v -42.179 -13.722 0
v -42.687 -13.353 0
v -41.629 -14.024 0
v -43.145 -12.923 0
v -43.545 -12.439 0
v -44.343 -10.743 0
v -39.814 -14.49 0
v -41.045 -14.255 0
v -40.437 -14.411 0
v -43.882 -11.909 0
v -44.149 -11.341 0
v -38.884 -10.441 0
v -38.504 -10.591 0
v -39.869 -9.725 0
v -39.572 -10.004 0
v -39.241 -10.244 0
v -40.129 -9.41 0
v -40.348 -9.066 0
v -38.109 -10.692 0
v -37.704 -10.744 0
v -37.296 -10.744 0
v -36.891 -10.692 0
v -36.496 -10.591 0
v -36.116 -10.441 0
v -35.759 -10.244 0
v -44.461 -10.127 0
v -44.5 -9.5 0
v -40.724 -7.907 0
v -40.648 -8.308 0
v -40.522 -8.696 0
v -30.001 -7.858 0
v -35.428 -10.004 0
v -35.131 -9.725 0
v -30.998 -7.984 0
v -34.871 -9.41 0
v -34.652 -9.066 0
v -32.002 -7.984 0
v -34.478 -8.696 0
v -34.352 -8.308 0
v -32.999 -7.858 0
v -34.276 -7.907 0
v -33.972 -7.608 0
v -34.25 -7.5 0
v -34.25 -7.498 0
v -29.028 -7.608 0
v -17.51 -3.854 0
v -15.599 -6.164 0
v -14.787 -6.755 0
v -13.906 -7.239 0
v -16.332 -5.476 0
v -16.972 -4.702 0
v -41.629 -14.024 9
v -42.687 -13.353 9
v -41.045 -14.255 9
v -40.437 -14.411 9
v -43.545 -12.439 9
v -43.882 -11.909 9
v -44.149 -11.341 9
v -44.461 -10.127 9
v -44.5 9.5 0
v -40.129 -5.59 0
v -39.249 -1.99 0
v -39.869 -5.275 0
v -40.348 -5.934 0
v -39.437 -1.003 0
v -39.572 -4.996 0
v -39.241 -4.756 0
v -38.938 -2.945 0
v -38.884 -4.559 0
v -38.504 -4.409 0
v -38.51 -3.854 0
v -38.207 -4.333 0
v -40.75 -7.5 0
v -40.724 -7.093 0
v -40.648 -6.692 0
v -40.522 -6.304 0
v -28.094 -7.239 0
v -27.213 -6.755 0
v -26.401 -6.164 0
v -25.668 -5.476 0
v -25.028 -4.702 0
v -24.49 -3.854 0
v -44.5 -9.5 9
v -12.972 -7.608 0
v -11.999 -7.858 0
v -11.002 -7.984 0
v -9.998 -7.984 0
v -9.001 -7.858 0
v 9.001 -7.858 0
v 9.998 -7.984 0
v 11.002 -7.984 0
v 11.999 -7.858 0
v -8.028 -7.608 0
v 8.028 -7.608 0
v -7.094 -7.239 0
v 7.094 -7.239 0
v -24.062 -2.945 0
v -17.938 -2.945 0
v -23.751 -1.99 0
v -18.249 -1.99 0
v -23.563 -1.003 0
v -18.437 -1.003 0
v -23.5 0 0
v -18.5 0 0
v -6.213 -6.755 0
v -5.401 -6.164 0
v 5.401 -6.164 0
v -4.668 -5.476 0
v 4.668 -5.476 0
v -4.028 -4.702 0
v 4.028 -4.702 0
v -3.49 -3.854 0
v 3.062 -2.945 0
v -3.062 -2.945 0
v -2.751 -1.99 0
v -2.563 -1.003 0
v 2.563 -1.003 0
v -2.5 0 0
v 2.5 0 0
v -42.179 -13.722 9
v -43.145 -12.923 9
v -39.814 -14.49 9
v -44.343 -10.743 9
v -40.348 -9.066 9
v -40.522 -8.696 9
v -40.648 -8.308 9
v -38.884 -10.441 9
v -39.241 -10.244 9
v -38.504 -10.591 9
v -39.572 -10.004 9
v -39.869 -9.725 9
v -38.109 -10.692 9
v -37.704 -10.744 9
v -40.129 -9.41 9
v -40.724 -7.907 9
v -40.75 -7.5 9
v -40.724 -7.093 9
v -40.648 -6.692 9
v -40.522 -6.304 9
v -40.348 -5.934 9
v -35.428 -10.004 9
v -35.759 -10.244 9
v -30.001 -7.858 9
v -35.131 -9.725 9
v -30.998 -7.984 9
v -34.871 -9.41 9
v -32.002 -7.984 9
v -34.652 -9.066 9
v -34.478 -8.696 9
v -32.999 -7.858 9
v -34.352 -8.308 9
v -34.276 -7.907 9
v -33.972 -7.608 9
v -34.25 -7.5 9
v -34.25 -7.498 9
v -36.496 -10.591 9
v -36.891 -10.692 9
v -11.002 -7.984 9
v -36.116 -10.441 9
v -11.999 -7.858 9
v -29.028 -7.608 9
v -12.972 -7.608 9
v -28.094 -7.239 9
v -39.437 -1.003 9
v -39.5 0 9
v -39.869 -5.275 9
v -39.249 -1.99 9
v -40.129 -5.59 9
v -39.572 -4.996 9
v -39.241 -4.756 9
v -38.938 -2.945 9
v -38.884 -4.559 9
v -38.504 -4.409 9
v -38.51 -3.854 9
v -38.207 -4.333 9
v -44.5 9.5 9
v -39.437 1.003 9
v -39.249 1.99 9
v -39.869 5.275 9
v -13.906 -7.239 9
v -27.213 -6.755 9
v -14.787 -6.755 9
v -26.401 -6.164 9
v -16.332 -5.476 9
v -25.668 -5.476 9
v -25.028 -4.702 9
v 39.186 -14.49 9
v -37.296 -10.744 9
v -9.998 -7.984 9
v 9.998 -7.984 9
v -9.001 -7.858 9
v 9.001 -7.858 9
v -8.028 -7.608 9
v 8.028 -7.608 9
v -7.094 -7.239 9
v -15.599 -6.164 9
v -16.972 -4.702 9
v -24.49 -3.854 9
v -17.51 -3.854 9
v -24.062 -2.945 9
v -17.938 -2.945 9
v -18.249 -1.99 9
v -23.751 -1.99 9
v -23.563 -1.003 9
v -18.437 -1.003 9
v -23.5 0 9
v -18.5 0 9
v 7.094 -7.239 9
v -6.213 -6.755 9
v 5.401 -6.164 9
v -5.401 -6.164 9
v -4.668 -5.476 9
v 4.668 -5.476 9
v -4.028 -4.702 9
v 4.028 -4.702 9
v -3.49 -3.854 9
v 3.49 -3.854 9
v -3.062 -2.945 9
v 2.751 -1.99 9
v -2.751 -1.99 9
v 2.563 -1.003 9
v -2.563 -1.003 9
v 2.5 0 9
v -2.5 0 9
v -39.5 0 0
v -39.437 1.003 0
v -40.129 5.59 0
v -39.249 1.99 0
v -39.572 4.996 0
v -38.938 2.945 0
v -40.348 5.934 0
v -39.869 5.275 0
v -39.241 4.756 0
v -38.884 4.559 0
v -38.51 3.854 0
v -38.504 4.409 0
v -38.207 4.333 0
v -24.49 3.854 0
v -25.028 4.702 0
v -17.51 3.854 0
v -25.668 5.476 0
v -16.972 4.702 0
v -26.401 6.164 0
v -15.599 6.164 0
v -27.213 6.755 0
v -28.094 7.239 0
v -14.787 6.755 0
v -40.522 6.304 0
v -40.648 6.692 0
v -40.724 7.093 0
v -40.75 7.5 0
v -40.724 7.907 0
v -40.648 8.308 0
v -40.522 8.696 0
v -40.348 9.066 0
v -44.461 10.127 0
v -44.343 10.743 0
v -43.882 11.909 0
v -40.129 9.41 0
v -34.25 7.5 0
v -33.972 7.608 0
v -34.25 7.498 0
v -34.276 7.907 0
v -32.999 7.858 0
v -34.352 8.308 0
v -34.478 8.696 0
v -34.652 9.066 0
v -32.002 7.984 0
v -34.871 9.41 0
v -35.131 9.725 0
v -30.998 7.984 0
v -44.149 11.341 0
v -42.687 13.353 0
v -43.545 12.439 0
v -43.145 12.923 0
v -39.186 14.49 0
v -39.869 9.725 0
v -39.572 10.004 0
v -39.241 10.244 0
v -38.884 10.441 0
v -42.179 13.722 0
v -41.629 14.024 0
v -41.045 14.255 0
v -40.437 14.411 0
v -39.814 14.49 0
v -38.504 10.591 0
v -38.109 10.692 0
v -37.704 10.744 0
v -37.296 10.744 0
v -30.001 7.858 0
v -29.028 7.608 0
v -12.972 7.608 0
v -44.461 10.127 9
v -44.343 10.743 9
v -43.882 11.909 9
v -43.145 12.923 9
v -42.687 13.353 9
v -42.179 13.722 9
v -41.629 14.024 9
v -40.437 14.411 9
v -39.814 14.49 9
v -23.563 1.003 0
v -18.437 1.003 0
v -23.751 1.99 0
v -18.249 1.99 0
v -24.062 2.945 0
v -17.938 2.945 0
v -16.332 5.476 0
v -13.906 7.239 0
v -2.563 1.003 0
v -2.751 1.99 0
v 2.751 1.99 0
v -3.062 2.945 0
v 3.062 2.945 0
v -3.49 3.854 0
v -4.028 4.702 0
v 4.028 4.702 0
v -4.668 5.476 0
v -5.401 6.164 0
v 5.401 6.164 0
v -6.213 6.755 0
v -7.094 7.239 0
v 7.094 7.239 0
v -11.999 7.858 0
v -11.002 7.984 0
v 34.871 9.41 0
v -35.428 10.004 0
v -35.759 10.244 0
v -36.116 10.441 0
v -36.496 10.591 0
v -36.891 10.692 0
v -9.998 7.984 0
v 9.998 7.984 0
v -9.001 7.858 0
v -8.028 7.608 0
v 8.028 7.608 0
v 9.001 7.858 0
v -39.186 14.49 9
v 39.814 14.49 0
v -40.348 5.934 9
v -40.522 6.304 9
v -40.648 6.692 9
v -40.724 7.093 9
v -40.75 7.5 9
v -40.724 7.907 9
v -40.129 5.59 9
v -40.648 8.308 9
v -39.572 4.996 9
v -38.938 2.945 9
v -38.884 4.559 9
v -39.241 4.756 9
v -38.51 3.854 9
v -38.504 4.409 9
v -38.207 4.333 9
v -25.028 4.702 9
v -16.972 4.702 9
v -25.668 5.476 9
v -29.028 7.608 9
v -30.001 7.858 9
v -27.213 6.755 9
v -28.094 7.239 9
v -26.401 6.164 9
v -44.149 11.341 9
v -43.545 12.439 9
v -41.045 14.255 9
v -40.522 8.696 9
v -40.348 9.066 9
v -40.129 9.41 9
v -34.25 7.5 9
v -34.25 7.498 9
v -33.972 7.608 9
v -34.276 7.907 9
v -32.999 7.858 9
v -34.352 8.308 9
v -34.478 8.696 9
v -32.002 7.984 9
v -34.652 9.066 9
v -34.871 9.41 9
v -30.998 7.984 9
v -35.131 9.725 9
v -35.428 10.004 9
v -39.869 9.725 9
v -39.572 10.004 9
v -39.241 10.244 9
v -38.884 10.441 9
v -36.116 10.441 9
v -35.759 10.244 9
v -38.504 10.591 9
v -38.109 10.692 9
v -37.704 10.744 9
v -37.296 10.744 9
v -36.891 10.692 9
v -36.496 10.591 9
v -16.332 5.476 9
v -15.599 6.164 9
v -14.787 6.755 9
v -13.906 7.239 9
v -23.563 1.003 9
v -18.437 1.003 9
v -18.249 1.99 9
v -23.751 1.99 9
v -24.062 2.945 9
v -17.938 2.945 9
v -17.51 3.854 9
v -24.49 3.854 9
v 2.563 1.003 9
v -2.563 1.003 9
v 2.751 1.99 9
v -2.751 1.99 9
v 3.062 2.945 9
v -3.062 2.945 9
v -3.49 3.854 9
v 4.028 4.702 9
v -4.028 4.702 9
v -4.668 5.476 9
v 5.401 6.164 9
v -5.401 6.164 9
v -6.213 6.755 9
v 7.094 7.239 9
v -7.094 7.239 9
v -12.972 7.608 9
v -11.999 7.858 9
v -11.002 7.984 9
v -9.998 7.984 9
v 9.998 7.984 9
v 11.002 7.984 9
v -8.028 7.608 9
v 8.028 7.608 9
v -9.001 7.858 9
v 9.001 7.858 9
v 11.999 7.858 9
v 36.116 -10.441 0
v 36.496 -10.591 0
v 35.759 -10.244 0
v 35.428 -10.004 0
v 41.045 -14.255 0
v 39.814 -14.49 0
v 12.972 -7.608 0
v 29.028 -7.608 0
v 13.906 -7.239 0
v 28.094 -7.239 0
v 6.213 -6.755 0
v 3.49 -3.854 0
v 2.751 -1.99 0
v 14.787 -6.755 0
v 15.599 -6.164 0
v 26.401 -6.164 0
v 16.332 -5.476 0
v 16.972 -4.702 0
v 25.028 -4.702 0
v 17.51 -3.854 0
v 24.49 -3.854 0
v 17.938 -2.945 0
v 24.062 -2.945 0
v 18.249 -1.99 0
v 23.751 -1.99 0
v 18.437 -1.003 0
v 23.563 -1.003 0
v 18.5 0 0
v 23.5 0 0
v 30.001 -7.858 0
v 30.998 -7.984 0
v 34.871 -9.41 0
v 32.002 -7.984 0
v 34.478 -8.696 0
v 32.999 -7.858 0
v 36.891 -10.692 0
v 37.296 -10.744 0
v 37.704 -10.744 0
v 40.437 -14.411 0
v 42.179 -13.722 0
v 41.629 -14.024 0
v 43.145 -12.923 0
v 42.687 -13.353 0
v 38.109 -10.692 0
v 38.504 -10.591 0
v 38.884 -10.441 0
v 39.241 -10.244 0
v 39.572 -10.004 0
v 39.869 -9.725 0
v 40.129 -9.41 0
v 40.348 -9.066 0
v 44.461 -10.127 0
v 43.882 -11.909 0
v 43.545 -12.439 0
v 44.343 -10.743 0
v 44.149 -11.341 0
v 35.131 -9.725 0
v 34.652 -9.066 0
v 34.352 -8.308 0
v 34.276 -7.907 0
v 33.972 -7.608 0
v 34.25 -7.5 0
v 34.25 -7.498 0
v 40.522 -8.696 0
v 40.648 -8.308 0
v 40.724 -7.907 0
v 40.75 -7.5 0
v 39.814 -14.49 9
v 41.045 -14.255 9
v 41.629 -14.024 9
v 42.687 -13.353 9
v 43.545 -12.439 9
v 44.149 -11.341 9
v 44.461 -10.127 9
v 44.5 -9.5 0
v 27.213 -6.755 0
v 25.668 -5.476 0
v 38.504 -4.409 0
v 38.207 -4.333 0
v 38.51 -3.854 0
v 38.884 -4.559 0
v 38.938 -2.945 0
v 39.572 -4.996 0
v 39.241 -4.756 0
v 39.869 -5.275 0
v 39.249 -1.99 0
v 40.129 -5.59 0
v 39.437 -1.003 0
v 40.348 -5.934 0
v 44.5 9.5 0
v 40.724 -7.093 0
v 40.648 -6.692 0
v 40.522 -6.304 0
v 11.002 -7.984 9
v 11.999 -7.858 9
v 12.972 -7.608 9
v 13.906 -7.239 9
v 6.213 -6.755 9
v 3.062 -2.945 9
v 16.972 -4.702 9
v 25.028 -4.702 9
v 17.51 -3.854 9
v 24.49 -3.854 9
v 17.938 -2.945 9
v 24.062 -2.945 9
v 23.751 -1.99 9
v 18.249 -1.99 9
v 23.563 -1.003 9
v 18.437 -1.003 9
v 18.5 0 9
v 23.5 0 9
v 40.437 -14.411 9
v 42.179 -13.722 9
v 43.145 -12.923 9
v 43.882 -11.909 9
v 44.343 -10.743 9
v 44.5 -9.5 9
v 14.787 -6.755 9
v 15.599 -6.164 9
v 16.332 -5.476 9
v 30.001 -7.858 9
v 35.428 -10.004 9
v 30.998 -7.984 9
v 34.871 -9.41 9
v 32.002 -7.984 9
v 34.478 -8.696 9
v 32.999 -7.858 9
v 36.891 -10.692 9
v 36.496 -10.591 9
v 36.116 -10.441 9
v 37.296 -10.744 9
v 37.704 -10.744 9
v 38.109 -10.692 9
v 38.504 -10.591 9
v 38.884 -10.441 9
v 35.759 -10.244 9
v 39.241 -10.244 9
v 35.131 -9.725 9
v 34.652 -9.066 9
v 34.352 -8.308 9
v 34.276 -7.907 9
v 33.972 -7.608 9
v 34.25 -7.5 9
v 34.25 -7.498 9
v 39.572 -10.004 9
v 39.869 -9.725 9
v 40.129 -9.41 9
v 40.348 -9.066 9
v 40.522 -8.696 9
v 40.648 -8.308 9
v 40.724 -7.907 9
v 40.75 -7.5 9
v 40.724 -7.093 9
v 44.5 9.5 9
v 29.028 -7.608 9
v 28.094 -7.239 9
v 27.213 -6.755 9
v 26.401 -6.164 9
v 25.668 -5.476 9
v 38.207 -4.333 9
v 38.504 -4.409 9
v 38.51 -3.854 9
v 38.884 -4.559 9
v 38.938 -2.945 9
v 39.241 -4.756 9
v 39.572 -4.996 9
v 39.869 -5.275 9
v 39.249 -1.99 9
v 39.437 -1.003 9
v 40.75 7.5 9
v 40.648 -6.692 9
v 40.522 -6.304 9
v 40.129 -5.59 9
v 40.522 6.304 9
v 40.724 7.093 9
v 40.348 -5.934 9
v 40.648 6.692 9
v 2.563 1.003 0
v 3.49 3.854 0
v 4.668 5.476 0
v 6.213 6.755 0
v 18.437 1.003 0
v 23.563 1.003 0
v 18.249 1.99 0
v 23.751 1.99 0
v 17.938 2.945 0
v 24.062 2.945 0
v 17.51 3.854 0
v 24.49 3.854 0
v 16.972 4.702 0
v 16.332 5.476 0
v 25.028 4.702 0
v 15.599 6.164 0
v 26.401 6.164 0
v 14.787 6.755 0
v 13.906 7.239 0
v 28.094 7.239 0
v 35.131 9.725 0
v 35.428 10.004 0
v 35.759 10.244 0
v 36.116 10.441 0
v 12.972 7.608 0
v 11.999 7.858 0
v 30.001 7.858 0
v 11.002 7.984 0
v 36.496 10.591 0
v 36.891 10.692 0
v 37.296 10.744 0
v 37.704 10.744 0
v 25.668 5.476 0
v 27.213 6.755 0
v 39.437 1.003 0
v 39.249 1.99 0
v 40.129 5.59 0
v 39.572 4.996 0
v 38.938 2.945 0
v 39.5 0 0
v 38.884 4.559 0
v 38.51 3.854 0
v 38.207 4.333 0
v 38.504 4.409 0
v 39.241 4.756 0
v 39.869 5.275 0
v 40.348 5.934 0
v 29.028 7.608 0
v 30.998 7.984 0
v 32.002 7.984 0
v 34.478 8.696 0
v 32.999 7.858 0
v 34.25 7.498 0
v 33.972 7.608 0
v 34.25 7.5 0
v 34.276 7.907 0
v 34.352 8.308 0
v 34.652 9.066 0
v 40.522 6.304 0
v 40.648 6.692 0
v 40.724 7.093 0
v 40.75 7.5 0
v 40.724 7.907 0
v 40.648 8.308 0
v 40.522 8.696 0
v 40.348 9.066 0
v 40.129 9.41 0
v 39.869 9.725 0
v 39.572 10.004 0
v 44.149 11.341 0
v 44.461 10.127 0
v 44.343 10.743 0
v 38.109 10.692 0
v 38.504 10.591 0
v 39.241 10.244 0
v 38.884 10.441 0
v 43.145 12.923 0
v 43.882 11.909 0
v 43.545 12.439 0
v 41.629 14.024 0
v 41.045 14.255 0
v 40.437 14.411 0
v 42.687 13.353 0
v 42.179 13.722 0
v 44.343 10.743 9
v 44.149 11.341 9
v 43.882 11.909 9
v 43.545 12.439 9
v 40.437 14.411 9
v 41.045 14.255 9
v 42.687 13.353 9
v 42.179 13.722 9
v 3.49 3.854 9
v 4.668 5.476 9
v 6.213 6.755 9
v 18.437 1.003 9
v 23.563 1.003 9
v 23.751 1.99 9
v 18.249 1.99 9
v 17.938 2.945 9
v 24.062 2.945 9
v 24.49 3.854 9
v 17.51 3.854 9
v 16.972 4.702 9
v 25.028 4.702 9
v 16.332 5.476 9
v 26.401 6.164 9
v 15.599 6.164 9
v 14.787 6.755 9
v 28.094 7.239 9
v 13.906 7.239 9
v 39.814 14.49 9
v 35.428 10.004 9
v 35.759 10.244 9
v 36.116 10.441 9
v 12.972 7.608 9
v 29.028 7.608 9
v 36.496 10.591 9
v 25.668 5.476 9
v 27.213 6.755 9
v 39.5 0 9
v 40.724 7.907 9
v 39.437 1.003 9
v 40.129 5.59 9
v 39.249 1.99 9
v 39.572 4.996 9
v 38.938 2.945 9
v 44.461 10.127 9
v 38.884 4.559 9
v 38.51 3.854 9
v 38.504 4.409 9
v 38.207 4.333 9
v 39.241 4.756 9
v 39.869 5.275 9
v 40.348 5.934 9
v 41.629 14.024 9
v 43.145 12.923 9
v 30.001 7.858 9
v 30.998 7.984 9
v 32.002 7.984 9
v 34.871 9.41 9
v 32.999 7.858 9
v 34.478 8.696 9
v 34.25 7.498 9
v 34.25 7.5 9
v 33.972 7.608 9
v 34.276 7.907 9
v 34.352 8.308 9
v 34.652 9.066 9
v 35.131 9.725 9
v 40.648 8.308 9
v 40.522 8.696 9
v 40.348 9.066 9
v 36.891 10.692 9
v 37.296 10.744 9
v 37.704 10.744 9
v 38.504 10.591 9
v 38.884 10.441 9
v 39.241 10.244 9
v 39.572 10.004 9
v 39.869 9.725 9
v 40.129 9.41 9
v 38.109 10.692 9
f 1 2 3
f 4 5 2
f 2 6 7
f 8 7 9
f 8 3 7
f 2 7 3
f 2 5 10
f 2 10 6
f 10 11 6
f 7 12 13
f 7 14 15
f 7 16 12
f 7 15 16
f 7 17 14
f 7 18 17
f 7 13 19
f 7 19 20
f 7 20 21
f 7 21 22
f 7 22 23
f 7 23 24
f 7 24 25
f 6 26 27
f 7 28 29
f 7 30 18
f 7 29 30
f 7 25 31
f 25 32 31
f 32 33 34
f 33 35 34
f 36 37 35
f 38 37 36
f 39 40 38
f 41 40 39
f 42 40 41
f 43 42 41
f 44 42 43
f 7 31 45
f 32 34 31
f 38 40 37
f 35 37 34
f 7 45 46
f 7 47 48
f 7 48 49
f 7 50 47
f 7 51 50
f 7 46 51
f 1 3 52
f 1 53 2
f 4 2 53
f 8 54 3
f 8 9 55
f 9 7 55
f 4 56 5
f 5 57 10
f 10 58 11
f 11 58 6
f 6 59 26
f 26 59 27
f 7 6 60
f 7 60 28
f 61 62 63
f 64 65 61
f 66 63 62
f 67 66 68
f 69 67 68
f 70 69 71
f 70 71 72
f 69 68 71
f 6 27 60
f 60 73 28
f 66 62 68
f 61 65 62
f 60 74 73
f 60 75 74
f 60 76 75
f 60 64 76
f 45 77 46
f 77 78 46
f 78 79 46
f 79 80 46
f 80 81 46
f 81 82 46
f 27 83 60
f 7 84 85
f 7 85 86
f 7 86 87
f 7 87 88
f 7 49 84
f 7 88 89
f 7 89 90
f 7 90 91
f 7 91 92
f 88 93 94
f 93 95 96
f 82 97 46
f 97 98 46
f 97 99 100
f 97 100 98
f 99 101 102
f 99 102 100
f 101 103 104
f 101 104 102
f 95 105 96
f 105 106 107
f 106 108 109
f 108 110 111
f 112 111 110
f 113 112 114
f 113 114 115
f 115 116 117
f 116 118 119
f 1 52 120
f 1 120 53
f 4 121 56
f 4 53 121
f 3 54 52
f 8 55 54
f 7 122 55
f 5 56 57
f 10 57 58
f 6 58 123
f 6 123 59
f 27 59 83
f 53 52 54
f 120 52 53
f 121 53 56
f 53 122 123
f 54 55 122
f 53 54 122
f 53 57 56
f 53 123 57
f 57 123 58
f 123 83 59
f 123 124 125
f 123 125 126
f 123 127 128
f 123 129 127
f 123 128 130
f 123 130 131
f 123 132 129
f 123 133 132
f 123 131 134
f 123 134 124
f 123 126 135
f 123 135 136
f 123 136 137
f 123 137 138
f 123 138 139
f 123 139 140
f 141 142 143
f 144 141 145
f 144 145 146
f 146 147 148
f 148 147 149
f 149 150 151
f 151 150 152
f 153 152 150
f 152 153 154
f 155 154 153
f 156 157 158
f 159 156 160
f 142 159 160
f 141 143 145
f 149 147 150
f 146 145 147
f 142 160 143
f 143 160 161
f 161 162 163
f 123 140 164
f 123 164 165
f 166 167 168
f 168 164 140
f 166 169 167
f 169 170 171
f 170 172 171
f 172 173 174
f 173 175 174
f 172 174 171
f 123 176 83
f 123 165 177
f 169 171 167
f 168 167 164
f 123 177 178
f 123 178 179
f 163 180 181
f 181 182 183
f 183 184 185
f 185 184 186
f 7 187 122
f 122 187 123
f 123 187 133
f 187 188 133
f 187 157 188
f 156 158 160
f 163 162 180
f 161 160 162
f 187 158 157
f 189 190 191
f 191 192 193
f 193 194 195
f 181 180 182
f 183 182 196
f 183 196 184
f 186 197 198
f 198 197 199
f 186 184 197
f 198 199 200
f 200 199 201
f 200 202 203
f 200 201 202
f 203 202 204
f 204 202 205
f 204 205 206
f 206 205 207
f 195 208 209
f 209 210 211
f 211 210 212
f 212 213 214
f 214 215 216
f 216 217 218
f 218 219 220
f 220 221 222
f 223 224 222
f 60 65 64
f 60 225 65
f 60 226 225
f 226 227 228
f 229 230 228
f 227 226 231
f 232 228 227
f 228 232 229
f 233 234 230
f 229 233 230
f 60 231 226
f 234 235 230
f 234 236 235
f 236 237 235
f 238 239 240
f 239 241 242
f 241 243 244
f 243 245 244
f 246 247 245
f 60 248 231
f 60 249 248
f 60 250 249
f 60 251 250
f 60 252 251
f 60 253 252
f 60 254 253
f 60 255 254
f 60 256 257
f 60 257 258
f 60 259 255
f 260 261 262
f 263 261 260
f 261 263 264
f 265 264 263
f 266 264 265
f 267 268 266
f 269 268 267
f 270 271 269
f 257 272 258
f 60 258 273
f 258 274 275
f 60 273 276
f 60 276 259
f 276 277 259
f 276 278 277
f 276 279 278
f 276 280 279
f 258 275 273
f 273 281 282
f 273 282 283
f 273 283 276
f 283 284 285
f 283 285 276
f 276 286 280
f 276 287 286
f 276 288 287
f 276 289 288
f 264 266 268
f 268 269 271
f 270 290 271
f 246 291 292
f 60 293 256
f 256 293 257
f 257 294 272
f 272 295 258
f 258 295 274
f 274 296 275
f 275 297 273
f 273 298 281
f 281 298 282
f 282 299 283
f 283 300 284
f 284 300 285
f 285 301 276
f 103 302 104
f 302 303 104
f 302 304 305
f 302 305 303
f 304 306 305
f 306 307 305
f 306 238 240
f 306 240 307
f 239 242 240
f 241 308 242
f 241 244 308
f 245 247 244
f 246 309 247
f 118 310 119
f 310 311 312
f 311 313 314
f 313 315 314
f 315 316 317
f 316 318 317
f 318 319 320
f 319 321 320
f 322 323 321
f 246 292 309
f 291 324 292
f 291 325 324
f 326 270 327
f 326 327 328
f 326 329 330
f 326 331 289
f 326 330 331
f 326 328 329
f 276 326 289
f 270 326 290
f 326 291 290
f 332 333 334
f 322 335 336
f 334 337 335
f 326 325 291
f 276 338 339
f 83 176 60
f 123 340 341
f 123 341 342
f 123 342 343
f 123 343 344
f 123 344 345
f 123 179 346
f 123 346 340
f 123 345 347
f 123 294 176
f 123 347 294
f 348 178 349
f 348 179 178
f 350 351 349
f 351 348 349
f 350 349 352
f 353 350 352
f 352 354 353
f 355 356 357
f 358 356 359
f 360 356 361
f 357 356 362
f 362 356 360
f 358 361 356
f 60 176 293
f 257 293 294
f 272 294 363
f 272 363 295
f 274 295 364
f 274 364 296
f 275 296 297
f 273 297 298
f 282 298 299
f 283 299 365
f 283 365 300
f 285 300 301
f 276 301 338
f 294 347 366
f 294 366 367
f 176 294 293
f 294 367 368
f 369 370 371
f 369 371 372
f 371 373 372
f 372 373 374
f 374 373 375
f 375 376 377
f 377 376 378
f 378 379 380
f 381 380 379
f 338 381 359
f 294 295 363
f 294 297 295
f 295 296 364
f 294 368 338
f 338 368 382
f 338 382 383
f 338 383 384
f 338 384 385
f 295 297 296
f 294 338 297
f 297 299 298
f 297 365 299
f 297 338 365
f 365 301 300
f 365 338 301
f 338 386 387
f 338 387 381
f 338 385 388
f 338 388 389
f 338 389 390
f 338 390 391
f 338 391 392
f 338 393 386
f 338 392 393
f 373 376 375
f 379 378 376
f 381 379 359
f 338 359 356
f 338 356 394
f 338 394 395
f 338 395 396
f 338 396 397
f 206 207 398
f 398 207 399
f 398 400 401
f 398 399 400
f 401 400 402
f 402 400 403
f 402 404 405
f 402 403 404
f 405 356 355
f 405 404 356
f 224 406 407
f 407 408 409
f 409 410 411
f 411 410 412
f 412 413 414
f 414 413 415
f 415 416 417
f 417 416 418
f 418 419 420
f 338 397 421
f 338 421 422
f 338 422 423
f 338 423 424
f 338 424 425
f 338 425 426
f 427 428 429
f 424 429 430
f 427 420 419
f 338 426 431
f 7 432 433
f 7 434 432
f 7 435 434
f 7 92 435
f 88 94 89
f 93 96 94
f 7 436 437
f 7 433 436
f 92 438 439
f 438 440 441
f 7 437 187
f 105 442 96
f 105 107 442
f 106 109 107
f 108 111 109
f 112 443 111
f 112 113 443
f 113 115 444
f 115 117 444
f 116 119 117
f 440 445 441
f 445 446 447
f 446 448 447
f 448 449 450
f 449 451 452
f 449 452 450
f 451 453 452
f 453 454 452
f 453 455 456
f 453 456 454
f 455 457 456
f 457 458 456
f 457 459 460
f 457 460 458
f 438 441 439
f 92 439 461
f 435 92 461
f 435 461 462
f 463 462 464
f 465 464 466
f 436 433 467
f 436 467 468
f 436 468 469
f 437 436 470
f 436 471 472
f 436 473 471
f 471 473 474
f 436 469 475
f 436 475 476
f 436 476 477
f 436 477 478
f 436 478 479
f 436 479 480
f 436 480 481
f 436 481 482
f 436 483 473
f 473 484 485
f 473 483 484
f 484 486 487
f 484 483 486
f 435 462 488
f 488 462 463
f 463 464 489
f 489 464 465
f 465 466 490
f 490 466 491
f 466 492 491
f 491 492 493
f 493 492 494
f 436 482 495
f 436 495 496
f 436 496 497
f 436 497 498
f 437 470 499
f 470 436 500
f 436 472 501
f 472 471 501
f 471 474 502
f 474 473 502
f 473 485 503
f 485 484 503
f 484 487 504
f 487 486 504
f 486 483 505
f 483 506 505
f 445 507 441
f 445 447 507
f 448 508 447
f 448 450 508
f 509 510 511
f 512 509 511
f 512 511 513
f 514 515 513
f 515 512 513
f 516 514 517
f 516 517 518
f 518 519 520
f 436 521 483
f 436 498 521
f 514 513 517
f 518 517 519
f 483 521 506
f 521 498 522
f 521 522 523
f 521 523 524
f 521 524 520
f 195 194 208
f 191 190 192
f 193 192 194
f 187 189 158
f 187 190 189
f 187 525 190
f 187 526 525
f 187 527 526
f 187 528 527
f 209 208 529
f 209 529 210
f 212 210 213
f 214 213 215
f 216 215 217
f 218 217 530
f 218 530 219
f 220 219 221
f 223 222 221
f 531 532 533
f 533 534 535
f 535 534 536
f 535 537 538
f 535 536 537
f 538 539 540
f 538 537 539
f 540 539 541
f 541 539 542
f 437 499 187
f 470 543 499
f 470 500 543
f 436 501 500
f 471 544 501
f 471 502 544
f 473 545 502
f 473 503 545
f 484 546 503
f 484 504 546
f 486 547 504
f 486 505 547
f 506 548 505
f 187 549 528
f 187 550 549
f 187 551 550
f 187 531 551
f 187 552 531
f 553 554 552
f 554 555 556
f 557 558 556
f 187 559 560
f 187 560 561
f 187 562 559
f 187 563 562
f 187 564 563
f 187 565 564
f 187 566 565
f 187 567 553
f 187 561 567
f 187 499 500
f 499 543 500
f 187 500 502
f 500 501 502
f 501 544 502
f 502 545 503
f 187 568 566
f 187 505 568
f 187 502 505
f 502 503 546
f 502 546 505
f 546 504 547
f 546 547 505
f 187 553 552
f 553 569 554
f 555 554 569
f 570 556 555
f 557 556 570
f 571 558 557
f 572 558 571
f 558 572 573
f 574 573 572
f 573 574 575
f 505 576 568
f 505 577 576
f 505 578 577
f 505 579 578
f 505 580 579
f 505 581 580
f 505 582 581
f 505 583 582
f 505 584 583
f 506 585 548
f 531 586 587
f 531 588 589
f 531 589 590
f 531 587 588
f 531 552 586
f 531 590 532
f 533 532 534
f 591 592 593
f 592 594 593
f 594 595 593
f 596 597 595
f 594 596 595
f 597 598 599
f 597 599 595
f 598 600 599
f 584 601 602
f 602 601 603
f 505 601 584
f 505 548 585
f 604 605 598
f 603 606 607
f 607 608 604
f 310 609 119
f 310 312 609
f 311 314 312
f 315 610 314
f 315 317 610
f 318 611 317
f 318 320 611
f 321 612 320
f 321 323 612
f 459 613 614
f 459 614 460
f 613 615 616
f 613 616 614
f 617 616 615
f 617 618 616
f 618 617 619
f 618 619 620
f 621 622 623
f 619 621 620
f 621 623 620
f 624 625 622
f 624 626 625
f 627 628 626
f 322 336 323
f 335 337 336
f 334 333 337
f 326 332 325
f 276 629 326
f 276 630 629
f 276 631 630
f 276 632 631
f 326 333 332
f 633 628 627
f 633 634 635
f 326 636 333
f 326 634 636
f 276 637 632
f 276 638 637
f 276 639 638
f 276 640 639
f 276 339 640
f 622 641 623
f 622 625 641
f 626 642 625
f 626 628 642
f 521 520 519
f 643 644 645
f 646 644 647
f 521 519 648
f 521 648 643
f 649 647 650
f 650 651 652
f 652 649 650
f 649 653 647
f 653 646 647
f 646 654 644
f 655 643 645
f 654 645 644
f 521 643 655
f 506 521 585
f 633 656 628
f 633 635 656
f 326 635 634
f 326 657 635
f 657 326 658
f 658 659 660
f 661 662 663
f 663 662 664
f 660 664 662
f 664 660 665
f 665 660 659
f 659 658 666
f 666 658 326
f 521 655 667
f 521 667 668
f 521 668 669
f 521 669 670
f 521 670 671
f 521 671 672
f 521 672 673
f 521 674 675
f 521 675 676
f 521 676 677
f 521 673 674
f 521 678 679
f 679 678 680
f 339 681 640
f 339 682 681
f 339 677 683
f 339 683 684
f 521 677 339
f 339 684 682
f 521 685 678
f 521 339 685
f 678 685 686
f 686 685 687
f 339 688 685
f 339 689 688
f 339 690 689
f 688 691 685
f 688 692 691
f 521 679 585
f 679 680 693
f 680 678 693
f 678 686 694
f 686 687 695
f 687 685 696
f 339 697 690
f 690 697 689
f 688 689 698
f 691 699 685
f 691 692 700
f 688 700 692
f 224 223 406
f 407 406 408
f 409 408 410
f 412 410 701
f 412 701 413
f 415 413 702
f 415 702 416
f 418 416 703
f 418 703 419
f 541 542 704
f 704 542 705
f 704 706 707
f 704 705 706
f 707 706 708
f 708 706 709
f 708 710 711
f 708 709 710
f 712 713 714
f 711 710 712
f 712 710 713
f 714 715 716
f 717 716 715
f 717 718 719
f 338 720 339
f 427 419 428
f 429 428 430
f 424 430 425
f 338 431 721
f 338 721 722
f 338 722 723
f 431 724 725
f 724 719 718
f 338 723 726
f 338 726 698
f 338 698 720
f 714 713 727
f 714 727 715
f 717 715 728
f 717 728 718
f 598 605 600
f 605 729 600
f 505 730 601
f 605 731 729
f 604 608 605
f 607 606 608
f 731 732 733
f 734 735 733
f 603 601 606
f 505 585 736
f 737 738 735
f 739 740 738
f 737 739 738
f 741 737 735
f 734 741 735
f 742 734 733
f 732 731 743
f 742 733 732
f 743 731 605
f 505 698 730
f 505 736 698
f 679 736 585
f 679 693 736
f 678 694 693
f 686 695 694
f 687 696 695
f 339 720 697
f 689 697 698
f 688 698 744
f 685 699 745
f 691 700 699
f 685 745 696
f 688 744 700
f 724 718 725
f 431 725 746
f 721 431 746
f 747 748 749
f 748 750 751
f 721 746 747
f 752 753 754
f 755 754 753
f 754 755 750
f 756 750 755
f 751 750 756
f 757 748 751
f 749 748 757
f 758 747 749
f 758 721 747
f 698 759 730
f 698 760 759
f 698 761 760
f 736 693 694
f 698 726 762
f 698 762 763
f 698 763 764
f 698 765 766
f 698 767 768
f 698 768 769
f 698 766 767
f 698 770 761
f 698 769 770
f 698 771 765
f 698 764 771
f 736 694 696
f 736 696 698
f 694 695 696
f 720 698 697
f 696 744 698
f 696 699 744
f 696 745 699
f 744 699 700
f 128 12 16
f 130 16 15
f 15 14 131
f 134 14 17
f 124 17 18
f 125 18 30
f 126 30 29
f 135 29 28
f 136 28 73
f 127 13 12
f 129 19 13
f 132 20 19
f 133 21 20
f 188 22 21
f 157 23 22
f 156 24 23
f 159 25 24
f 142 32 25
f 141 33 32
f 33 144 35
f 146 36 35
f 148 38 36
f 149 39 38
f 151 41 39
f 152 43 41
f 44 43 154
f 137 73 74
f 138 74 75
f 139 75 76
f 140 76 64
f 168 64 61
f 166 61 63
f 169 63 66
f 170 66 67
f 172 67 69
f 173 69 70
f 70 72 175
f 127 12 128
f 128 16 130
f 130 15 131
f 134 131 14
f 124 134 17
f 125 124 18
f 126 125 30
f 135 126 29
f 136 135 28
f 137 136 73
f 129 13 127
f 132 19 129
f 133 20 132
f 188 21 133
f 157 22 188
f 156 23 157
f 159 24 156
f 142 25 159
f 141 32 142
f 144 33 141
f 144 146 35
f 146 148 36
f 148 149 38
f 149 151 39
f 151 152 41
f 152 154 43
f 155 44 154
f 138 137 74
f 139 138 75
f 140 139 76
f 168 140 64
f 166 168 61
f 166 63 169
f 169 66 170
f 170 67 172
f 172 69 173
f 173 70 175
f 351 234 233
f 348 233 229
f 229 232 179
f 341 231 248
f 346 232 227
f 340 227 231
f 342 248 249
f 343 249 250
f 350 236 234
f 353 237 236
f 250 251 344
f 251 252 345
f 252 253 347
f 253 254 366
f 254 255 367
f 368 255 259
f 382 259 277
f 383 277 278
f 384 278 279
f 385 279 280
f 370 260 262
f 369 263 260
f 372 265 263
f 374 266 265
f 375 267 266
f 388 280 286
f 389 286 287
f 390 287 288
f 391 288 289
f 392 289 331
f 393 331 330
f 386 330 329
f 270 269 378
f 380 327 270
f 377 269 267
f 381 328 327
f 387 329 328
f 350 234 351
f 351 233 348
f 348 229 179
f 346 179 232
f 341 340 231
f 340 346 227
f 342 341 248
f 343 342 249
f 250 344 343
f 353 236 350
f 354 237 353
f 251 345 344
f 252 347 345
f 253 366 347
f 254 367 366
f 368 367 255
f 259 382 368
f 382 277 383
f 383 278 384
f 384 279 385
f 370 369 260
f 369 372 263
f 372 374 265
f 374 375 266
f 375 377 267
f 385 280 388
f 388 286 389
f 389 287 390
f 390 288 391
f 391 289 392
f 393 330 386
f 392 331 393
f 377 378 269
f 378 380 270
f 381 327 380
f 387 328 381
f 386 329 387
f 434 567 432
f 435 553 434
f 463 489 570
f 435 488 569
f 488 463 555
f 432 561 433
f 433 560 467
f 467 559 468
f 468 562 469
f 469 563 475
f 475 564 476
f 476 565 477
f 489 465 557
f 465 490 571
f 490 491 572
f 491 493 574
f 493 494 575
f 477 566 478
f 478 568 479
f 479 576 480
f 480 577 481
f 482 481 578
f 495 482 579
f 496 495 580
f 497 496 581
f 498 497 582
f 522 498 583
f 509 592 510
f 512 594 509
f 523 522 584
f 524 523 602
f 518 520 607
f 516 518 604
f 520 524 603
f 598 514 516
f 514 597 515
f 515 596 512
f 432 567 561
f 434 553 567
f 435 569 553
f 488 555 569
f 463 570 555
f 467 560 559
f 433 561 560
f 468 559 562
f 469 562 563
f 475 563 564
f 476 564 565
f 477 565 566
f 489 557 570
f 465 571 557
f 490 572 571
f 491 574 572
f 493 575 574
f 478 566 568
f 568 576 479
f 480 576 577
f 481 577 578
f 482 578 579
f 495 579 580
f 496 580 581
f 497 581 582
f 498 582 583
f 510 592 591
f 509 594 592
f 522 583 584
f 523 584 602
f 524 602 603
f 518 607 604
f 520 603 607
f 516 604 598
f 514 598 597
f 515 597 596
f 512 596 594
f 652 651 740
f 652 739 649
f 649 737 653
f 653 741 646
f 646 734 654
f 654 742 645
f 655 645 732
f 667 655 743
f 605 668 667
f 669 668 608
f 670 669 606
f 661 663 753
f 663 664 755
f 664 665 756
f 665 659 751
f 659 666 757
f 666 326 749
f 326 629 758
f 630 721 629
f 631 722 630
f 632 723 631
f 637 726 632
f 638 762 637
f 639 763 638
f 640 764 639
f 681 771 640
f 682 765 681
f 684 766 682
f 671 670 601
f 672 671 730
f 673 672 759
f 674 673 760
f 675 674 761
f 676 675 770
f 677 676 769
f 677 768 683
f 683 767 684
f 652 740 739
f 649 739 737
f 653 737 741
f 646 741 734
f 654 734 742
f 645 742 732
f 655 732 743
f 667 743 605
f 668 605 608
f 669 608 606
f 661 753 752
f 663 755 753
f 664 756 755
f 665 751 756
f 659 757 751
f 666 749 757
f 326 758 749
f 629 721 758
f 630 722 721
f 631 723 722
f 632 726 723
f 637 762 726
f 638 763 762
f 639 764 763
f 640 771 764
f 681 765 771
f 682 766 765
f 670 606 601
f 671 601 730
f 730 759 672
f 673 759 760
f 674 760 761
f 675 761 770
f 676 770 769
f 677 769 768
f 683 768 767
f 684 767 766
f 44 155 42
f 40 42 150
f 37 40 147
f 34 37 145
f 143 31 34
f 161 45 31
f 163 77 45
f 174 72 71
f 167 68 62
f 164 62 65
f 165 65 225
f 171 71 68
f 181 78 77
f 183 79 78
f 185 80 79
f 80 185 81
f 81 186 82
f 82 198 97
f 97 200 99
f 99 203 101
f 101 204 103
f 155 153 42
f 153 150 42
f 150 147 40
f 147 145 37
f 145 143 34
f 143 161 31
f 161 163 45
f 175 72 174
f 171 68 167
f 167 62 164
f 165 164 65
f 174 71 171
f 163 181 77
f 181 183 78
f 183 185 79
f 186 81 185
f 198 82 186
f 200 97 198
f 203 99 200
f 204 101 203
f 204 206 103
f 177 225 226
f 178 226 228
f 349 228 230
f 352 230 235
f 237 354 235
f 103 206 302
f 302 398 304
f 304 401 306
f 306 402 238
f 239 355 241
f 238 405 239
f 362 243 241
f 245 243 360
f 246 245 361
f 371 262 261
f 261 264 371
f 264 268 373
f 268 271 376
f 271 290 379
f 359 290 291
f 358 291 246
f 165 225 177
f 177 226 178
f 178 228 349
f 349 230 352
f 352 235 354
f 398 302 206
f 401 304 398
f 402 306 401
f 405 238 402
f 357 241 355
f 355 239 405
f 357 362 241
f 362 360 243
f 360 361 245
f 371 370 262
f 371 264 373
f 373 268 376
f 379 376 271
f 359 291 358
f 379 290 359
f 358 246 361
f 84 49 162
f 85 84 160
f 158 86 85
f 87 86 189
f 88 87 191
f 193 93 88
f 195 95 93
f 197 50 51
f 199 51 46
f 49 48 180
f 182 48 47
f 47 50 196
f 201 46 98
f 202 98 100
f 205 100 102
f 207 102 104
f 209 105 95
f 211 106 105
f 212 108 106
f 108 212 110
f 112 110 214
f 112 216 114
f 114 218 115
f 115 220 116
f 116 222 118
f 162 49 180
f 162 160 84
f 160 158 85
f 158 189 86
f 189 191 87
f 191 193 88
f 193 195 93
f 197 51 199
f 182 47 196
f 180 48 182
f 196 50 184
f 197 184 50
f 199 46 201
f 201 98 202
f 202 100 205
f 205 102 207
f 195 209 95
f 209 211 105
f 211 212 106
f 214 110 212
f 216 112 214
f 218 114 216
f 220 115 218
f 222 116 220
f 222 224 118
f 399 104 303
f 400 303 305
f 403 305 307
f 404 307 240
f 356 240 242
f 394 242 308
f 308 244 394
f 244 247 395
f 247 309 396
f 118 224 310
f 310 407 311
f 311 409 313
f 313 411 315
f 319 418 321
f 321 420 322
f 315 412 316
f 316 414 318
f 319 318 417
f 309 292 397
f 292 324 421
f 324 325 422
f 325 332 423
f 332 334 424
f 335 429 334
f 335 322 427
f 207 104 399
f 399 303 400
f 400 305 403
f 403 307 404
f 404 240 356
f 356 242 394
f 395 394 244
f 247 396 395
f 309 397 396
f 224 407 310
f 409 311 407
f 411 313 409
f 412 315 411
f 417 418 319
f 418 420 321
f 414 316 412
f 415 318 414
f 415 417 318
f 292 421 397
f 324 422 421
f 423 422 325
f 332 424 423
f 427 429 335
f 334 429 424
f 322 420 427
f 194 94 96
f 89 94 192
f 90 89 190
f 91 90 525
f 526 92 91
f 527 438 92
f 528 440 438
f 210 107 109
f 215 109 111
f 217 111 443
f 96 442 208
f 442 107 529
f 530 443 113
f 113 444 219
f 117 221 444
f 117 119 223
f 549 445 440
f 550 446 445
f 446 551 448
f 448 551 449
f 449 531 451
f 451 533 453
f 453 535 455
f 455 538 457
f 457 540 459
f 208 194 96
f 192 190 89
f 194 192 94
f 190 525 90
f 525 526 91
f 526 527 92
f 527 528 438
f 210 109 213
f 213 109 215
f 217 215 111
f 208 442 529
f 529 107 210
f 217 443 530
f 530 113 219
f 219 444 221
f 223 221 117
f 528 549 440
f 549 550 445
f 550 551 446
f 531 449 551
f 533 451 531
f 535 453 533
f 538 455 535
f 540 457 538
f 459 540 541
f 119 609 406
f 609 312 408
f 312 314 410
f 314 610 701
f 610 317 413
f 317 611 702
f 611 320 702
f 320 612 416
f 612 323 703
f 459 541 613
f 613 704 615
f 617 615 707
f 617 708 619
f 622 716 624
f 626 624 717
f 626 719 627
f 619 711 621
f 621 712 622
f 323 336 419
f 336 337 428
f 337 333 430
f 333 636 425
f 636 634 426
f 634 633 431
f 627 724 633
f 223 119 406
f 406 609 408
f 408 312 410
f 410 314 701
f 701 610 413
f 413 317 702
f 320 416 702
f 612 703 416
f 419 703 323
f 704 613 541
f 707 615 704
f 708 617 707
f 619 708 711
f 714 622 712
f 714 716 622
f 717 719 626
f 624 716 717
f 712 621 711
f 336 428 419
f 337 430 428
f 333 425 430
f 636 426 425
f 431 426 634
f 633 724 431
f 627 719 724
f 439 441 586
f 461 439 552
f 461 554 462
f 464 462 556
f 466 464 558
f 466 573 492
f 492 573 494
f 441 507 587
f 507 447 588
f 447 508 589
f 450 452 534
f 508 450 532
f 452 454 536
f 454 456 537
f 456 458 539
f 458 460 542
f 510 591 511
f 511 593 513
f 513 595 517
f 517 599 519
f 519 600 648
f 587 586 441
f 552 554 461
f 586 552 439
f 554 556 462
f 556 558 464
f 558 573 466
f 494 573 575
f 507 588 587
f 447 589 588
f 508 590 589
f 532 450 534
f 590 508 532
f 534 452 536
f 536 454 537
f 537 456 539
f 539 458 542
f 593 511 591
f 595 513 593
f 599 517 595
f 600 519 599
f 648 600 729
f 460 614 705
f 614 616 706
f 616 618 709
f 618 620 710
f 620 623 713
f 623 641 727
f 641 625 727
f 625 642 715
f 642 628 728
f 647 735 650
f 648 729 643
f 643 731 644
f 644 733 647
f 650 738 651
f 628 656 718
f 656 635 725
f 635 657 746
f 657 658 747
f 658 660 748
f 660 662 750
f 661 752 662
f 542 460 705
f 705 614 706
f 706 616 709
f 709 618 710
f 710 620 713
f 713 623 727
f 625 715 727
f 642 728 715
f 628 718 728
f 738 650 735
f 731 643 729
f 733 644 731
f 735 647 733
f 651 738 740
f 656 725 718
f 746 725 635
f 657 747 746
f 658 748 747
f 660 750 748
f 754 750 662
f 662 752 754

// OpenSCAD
$fn = 50;

difference() {
	union() {
		hull() {
			translate(v = [-39.5, 9.5, 0]) {
				cylinder(h = 9, r = 5);
			}
			translate(v = [39.5, 9.5, 0]) {
				cylinder(h = 9, r = 5);
			}
			translate(v = [-39.5, -9.5, 0]) {
				cylinder(h = 9, r = 5);
			}
			translate(v = [39.5, -9.5, 0]) {
				cylinder(h = 9, r = 5);
			}
		}
	}
	union() {
		translate(v = [-37.5, -7.5, -100.0]) {
			cylinder(h = 200, r = 3.25);
		}
		translate(v = [-37.5, 7.5, -100.0]) {
			cylinder(h = 200, r = 3.25);
		}
		translate(v = [37.5, -7.5, -100.0]) {
			cylinder(h = 200, r = 3.25);
		}
		translate(v = [37.5, 7.5, -100.0]) {
			cylinder(h = 200, r = 3.25);
		}
		translate(v = [-37.5, -7.5, -100.0]) {
			cylinder(h = 200, r = 1.8);
		}
		translate(v = [-37.5, 7.5, -100.0]) {
			cylinder(h = 200, r = 1.8);
		}
		translate(v = [37.5, -7.5, -100.0]) {
			cylinder(h = 200, r = 1.8);
		}
		translate(v = [37.5, 7.5, -100.0]) {
			cylinder(h = 200, r = 1.8);
		}
		translate(v = [-31.5, 0, 0.0]) {
			cylinder(h = 9, r = 8.0);
		}
		translate(v = [-10.5, 0, 0.0]) {
			cylinder(h = 9, r = 8.0);
		}
		translate(v = [10.5, 0, 0.0]) {
			cylinder(h = 9, r = 8.0);
		}
		translate(v = [31.5, 0, 0.0]) {
			cylinder(h = 9, r = 8.0);
		}
	}
}
